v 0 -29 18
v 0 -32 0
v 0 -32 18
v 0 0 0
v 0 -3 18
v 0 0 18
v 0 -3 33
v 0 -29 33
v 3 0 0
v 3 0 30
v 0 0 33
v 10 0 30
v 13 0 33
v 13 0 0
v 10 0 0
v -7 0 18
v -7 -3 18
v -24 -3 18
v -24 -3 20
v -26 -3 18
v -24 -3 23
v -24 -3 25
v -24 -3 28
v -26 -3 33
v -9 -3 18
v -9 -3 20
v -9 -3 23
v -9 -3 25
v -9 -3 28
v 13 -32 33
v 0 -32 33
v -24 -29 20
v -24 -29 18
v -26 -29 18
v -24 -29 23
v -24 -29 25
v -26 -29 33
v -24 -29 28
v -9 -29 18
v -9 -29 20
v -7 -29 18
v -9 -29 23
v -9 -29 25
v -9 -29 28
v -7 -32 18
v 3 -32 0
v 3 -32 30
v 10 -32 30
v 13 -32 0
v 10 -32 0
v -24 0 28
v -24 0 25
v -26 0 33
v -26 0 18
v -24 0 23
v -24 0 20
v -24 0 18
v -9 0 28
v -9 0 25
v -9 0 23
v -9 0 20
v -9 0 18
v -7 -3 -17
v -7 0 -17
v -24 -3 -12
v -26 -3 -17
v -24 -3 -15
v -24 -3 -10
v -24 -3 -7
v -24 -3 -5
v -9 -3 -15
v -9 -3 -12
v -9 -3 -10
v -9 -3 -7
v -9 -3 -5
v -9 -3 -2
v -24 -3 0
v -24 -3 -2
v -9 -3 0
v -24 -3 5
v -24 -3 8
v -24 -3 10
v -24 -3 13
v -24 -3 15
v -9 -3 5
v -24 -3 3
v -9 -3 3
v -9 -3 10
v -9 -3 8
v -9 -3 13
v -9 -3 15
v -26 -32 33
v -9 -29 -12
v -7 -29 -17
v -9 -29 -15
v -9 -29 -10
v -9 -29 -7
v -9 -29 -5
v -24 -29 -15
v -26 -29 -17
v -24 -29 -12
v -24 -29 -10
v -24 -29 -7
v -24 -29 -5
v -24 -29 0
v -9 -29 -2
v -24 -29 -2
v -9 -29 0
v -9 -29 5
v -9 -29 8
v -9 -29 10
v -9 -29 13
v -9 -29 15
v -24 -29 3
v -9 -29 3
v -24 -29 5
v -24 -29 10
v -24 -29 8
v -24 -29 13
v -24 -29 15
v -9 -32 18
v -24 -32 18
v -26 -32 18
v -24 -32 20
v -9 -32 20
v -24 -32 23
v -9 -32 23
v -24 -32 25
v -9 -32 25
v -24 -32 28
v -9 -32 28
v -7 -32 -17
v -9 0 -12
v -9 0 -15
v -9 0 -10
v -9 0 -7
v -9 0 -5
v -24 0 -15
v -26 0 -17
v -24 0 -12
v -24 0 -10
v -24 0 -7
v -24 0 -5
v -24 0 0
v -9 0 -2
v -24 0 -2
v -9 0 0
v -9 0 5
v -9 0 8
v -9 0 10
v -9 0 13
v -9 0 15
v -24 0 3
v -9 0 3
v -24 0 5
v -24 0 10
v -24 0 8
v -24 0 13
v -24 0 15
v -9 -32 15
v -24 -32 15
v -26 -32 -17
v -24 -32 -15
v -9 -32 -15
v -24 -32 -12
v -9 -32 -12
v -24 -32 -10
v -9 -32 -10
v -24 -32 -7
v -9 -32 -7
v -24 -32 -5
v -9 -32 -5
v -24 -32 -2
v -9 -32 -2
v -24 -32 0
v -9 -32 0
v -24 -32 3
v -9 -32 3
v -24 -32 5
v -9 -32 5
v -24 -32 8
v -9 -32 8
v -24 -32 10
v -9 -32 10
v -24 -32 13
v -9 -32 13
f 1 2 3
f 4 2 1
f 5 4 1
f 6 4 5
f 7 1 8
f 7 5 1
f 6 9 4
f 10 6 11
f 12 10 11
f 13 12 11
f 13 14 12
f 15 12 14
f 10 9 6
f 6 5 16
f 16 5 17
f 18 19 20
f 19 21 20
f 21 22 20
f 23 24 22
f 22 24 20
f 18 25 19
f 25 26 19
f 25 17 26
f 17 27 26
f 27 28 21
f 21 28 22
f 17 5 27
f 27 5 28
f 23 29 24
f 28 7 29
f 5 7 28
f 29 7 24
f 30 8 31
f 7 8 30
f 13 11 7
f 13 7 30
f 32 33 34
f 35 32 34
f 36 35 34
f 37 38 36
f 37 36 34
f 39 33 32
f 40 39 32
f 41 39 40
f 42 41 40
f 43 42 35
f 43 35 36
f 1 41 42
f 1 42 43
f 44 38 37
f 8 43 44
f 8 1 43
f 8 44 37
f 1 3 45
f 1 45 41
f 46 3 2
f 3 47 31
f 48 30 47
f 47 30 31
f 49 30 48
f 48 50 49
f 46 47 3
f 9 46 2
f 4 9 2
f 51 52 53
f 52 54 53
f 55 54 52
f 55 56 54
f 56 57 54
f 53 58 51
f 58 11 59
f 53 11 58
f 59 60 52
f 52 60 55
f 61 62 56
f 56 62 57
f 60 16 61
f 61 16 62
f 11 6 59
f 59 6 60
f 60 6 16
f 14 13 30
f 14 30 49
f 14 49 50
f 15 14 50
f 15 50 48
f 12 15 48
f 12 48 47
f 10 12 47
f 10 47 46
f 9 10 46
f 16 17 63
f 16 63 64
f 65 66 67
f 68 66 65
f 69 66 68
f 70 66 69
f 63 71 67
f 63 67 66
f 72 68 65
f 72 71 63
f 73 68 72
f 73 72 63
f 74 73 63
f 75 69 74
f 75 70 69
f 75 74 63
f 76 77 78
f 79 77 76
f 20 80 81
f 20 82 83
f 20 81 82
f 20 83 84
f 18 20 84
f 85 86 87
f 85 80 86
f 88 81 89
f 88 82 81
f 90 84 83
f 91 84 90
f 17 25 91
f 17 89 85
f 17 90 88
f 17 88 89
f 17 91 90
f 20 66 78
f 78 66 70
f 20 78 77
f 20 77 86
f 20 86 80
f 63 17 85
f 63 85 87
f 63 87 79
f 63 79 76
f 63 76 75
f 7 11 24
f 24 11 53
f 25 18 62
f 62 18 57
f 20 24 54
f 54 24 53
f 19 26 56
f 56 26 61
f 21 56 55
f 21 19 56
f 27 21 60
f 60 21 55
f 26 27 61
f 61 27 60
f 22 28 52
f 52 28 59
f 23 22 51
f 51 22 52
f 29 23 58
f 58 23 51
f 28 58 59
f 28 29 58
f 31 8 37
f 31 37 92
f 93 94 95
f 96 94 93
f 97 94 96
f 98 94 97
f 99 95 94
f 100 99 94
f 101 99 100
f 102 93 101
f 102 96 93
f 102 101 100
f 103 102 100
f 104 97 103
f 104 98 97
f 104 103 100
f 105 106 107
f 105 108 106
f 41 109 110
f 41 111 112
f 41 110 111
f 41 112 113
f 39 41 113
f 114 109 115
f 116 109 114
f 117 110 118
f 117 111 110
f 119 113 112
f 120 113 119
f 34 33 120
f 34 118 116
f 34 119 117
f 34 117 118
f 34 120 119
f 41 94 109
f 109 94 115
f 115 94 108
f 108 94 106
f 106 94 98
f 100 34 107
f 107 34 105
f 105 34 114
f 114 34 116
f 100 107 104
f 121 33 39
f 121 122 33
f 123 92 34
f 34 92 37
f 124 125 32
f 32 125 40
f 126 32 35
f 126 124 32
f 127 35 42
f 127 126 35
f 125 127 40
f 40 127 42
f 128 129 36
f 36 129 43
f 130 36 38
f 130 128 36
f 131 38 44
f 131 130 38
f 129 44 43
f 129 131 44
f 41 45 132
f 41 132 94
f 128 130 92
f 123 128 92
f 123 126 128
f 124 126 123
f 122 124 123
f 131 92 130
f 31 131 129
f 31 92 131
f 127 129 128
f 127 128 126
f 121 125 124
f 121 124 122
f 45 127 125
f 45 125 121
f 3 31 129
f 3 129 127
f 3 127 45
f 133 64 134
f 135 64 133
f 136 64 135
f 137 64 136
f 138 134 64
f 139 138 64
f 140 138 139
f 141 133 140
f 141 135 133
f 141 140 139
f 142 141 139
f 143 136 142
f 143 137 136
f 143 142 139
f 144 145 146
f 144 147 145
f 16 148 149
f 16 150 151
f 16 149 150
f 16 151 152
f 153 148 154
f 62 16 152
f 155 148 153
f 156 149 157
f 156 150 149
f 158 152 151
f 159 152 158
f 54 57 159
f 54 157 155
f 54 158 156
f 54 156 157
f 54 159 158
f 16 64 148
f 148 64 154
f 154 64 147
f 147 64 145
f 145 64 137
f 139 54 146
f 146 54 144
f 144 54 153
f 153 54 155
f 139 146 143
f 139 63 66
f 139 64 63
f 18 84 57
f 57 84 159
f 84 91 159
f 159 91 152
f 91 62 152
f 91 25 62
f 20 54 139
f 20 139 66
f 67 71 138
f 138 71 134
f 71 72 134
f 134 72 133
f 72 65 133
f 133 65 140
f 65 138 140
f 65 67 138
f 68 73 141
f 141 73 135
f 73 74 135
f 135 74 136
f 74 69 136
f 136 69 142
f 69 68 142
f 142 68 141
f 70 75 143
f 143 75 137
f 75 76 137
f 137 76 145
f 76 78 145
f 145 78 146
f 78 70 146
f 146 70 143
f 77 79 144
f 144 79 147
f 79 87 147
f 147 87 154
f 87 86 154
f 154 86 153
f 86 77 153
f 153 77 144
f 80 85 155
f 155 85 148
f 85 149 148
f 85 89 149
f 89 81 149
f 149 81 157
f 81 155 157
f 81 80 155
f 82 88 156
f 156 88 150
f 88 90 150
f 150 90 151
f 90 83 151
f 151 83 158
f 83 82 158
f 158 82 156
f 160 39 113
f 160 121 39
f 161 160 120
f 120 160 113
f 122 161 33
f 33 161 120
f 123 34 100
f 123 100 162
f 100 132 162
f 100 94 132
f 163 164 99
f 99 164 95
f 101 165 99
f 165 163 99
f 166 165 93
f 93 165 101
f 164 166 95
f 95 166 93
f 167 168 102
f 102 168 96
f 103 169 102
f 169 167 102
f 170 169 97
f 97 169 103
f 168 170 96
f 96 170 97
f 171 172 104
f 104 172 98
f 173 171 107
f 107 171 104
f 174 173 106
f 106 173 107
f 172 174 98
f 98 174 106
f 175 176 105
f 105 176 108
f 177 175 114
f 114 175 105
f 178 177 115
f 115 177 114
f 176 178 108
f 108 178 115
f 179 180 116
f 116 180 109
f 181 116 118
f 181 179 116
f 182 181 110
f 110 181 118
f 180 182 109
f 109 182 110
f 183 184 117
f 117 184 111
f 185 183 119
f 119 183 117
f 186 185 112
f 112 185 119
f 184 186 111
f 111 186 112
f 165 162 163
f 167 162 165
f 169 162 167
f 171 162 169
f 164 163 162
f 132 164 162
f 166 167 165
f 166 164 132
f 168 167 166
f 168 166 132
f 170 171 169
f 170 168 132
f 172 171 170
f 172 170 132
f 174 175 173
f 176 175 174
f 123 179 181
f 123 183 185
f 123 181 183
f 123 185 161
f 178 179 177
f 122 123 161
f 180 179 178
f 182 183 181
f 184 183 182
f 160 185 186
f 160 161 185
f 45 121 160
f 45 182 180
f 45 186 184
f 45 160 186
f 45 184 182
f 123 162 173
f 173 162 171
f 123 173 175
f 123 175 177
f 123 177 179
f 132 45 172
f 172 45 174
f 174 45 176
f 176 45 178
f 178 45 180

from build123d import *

# Parameters (mm, degrees)
PAD_DEPTH    = 32
SKETCH001_W  = 15
SKETCH001_H  = 3
PAD001_DEPTH = 26
SKETCH002_W  = 19
SKETCH002_H  = 3
PAD002_DEPTH = 35
SKETCH003_W  = 15
SKETCH003_H  = 3
PAD003_DEPTH = 26
SKETCH004_W  = 19
SKETCH004_H  = 3
PAD004_DEPTH = 35
SKETCH006_W  = 15
SKETCH006_H  = 3
POCKET_DEPTH = 100


with BuildPart() as part:
    # Sketch → Pad (new body)
    with BuildSketch(Plane.XZ):
        Polygon((0, 0), (0, 33), (13, 33), (13, 0), (10, 0), (10, 30), (3, 30), (3, 0), align=None)
    extrude(amount=PAD_DEPTH)

    # Sketch001 (on Face1 of Pad) → Pad001 (join)
    with BuildSketch(Plane(origin=(0, 0, 0), x_dir=(0, 0, -1), z_dir=(-1, 0, 0))):
        with Locations((-25.5, 1.5)):
            Rectangle(SKETCH001_W, SKETCH001_H)
    extrude(amount=PAD001_DEPTH)

    # Sketch002 (on Face3 of Pad001) → Pad002 (join)
    with BuildSketch(Plane(origin=(0, 0, 18), x_dir=(1, 0, 0), z_dir=(0, 0, -1))):
        with Locations((-16.5, 1.5)):
            Rectangle(SKETCH002_W, SKETCH002_H)
    extrude(amount=PAD002_DEPTH)

    # Sketch003 (on Face1 of Pad002) → Pad003 (join)
    with BuildSketch(Plane(origin=(0, 0, 0), x_dir=(0, 0, -1), z_dir=(-1, 0, 0))):
        with Locations((-25.5, 30.5)):
            Rectangle(SKETCH003_W, SKETCH003_H)
    extrude(amount=PAD003_DEPTH)

    # Sketch004 (on Face7 of Pad003) → Pad004 (join)
    with BuildSketch(Plane(origin=(0, 0, 18), x_dir=(1, 0, 0), z_dir=(0, 0, -1))):
        with Locations((-16.5, 30.5)):
            Rectangle(SKETCH004_W, SKETCH004_H)
    extrude(amount=PAD004_DEPTH)

    # Sketch006 (on Face30 of Pad004) → Pocket (cut)
    with BuildSketch(Plane.XZ.offset(32)):
        with Locations((-16.5, -13.5)):
            Rectangle(SKETCH006_W, SKETCH006_H)
        with Locations((-16.5, -8.5)):
            Rectangle(SKETCH006_W, SKETCH006_H)
        with Locations((-16.5, -3.5)):
            Rectangle(SKETCH006_W, SKETCH006_H)
        with Locations((-16.5, 1.5)):
            Rectangle(SKETCH006_W, SKETCH006_H)
        with Locations((-16.5, 6.5)):
            Rectangle(SKETCH006_W, SKETCH006_H)
        with Locations((-16.5, 11.5)):
            Rectangle(SKETCH006_W, SKETCH006_H)
        with Locations((-16.5, 16.5)):
            Rectangle(SKETCH006_W, SKETCH006_H)
        with Locations((-16.5, 21.5)):
            Rectangle(SKETCH006_W, SKETCH006_H)
        with Locations((-16.5, 26.5)):
            Rectangle(SKETCH006_W, SKETCH006_H)
    extrude(amount=-POCKET_DEPTH, mode=Mode.SUBTRACT)


solid = part.part
